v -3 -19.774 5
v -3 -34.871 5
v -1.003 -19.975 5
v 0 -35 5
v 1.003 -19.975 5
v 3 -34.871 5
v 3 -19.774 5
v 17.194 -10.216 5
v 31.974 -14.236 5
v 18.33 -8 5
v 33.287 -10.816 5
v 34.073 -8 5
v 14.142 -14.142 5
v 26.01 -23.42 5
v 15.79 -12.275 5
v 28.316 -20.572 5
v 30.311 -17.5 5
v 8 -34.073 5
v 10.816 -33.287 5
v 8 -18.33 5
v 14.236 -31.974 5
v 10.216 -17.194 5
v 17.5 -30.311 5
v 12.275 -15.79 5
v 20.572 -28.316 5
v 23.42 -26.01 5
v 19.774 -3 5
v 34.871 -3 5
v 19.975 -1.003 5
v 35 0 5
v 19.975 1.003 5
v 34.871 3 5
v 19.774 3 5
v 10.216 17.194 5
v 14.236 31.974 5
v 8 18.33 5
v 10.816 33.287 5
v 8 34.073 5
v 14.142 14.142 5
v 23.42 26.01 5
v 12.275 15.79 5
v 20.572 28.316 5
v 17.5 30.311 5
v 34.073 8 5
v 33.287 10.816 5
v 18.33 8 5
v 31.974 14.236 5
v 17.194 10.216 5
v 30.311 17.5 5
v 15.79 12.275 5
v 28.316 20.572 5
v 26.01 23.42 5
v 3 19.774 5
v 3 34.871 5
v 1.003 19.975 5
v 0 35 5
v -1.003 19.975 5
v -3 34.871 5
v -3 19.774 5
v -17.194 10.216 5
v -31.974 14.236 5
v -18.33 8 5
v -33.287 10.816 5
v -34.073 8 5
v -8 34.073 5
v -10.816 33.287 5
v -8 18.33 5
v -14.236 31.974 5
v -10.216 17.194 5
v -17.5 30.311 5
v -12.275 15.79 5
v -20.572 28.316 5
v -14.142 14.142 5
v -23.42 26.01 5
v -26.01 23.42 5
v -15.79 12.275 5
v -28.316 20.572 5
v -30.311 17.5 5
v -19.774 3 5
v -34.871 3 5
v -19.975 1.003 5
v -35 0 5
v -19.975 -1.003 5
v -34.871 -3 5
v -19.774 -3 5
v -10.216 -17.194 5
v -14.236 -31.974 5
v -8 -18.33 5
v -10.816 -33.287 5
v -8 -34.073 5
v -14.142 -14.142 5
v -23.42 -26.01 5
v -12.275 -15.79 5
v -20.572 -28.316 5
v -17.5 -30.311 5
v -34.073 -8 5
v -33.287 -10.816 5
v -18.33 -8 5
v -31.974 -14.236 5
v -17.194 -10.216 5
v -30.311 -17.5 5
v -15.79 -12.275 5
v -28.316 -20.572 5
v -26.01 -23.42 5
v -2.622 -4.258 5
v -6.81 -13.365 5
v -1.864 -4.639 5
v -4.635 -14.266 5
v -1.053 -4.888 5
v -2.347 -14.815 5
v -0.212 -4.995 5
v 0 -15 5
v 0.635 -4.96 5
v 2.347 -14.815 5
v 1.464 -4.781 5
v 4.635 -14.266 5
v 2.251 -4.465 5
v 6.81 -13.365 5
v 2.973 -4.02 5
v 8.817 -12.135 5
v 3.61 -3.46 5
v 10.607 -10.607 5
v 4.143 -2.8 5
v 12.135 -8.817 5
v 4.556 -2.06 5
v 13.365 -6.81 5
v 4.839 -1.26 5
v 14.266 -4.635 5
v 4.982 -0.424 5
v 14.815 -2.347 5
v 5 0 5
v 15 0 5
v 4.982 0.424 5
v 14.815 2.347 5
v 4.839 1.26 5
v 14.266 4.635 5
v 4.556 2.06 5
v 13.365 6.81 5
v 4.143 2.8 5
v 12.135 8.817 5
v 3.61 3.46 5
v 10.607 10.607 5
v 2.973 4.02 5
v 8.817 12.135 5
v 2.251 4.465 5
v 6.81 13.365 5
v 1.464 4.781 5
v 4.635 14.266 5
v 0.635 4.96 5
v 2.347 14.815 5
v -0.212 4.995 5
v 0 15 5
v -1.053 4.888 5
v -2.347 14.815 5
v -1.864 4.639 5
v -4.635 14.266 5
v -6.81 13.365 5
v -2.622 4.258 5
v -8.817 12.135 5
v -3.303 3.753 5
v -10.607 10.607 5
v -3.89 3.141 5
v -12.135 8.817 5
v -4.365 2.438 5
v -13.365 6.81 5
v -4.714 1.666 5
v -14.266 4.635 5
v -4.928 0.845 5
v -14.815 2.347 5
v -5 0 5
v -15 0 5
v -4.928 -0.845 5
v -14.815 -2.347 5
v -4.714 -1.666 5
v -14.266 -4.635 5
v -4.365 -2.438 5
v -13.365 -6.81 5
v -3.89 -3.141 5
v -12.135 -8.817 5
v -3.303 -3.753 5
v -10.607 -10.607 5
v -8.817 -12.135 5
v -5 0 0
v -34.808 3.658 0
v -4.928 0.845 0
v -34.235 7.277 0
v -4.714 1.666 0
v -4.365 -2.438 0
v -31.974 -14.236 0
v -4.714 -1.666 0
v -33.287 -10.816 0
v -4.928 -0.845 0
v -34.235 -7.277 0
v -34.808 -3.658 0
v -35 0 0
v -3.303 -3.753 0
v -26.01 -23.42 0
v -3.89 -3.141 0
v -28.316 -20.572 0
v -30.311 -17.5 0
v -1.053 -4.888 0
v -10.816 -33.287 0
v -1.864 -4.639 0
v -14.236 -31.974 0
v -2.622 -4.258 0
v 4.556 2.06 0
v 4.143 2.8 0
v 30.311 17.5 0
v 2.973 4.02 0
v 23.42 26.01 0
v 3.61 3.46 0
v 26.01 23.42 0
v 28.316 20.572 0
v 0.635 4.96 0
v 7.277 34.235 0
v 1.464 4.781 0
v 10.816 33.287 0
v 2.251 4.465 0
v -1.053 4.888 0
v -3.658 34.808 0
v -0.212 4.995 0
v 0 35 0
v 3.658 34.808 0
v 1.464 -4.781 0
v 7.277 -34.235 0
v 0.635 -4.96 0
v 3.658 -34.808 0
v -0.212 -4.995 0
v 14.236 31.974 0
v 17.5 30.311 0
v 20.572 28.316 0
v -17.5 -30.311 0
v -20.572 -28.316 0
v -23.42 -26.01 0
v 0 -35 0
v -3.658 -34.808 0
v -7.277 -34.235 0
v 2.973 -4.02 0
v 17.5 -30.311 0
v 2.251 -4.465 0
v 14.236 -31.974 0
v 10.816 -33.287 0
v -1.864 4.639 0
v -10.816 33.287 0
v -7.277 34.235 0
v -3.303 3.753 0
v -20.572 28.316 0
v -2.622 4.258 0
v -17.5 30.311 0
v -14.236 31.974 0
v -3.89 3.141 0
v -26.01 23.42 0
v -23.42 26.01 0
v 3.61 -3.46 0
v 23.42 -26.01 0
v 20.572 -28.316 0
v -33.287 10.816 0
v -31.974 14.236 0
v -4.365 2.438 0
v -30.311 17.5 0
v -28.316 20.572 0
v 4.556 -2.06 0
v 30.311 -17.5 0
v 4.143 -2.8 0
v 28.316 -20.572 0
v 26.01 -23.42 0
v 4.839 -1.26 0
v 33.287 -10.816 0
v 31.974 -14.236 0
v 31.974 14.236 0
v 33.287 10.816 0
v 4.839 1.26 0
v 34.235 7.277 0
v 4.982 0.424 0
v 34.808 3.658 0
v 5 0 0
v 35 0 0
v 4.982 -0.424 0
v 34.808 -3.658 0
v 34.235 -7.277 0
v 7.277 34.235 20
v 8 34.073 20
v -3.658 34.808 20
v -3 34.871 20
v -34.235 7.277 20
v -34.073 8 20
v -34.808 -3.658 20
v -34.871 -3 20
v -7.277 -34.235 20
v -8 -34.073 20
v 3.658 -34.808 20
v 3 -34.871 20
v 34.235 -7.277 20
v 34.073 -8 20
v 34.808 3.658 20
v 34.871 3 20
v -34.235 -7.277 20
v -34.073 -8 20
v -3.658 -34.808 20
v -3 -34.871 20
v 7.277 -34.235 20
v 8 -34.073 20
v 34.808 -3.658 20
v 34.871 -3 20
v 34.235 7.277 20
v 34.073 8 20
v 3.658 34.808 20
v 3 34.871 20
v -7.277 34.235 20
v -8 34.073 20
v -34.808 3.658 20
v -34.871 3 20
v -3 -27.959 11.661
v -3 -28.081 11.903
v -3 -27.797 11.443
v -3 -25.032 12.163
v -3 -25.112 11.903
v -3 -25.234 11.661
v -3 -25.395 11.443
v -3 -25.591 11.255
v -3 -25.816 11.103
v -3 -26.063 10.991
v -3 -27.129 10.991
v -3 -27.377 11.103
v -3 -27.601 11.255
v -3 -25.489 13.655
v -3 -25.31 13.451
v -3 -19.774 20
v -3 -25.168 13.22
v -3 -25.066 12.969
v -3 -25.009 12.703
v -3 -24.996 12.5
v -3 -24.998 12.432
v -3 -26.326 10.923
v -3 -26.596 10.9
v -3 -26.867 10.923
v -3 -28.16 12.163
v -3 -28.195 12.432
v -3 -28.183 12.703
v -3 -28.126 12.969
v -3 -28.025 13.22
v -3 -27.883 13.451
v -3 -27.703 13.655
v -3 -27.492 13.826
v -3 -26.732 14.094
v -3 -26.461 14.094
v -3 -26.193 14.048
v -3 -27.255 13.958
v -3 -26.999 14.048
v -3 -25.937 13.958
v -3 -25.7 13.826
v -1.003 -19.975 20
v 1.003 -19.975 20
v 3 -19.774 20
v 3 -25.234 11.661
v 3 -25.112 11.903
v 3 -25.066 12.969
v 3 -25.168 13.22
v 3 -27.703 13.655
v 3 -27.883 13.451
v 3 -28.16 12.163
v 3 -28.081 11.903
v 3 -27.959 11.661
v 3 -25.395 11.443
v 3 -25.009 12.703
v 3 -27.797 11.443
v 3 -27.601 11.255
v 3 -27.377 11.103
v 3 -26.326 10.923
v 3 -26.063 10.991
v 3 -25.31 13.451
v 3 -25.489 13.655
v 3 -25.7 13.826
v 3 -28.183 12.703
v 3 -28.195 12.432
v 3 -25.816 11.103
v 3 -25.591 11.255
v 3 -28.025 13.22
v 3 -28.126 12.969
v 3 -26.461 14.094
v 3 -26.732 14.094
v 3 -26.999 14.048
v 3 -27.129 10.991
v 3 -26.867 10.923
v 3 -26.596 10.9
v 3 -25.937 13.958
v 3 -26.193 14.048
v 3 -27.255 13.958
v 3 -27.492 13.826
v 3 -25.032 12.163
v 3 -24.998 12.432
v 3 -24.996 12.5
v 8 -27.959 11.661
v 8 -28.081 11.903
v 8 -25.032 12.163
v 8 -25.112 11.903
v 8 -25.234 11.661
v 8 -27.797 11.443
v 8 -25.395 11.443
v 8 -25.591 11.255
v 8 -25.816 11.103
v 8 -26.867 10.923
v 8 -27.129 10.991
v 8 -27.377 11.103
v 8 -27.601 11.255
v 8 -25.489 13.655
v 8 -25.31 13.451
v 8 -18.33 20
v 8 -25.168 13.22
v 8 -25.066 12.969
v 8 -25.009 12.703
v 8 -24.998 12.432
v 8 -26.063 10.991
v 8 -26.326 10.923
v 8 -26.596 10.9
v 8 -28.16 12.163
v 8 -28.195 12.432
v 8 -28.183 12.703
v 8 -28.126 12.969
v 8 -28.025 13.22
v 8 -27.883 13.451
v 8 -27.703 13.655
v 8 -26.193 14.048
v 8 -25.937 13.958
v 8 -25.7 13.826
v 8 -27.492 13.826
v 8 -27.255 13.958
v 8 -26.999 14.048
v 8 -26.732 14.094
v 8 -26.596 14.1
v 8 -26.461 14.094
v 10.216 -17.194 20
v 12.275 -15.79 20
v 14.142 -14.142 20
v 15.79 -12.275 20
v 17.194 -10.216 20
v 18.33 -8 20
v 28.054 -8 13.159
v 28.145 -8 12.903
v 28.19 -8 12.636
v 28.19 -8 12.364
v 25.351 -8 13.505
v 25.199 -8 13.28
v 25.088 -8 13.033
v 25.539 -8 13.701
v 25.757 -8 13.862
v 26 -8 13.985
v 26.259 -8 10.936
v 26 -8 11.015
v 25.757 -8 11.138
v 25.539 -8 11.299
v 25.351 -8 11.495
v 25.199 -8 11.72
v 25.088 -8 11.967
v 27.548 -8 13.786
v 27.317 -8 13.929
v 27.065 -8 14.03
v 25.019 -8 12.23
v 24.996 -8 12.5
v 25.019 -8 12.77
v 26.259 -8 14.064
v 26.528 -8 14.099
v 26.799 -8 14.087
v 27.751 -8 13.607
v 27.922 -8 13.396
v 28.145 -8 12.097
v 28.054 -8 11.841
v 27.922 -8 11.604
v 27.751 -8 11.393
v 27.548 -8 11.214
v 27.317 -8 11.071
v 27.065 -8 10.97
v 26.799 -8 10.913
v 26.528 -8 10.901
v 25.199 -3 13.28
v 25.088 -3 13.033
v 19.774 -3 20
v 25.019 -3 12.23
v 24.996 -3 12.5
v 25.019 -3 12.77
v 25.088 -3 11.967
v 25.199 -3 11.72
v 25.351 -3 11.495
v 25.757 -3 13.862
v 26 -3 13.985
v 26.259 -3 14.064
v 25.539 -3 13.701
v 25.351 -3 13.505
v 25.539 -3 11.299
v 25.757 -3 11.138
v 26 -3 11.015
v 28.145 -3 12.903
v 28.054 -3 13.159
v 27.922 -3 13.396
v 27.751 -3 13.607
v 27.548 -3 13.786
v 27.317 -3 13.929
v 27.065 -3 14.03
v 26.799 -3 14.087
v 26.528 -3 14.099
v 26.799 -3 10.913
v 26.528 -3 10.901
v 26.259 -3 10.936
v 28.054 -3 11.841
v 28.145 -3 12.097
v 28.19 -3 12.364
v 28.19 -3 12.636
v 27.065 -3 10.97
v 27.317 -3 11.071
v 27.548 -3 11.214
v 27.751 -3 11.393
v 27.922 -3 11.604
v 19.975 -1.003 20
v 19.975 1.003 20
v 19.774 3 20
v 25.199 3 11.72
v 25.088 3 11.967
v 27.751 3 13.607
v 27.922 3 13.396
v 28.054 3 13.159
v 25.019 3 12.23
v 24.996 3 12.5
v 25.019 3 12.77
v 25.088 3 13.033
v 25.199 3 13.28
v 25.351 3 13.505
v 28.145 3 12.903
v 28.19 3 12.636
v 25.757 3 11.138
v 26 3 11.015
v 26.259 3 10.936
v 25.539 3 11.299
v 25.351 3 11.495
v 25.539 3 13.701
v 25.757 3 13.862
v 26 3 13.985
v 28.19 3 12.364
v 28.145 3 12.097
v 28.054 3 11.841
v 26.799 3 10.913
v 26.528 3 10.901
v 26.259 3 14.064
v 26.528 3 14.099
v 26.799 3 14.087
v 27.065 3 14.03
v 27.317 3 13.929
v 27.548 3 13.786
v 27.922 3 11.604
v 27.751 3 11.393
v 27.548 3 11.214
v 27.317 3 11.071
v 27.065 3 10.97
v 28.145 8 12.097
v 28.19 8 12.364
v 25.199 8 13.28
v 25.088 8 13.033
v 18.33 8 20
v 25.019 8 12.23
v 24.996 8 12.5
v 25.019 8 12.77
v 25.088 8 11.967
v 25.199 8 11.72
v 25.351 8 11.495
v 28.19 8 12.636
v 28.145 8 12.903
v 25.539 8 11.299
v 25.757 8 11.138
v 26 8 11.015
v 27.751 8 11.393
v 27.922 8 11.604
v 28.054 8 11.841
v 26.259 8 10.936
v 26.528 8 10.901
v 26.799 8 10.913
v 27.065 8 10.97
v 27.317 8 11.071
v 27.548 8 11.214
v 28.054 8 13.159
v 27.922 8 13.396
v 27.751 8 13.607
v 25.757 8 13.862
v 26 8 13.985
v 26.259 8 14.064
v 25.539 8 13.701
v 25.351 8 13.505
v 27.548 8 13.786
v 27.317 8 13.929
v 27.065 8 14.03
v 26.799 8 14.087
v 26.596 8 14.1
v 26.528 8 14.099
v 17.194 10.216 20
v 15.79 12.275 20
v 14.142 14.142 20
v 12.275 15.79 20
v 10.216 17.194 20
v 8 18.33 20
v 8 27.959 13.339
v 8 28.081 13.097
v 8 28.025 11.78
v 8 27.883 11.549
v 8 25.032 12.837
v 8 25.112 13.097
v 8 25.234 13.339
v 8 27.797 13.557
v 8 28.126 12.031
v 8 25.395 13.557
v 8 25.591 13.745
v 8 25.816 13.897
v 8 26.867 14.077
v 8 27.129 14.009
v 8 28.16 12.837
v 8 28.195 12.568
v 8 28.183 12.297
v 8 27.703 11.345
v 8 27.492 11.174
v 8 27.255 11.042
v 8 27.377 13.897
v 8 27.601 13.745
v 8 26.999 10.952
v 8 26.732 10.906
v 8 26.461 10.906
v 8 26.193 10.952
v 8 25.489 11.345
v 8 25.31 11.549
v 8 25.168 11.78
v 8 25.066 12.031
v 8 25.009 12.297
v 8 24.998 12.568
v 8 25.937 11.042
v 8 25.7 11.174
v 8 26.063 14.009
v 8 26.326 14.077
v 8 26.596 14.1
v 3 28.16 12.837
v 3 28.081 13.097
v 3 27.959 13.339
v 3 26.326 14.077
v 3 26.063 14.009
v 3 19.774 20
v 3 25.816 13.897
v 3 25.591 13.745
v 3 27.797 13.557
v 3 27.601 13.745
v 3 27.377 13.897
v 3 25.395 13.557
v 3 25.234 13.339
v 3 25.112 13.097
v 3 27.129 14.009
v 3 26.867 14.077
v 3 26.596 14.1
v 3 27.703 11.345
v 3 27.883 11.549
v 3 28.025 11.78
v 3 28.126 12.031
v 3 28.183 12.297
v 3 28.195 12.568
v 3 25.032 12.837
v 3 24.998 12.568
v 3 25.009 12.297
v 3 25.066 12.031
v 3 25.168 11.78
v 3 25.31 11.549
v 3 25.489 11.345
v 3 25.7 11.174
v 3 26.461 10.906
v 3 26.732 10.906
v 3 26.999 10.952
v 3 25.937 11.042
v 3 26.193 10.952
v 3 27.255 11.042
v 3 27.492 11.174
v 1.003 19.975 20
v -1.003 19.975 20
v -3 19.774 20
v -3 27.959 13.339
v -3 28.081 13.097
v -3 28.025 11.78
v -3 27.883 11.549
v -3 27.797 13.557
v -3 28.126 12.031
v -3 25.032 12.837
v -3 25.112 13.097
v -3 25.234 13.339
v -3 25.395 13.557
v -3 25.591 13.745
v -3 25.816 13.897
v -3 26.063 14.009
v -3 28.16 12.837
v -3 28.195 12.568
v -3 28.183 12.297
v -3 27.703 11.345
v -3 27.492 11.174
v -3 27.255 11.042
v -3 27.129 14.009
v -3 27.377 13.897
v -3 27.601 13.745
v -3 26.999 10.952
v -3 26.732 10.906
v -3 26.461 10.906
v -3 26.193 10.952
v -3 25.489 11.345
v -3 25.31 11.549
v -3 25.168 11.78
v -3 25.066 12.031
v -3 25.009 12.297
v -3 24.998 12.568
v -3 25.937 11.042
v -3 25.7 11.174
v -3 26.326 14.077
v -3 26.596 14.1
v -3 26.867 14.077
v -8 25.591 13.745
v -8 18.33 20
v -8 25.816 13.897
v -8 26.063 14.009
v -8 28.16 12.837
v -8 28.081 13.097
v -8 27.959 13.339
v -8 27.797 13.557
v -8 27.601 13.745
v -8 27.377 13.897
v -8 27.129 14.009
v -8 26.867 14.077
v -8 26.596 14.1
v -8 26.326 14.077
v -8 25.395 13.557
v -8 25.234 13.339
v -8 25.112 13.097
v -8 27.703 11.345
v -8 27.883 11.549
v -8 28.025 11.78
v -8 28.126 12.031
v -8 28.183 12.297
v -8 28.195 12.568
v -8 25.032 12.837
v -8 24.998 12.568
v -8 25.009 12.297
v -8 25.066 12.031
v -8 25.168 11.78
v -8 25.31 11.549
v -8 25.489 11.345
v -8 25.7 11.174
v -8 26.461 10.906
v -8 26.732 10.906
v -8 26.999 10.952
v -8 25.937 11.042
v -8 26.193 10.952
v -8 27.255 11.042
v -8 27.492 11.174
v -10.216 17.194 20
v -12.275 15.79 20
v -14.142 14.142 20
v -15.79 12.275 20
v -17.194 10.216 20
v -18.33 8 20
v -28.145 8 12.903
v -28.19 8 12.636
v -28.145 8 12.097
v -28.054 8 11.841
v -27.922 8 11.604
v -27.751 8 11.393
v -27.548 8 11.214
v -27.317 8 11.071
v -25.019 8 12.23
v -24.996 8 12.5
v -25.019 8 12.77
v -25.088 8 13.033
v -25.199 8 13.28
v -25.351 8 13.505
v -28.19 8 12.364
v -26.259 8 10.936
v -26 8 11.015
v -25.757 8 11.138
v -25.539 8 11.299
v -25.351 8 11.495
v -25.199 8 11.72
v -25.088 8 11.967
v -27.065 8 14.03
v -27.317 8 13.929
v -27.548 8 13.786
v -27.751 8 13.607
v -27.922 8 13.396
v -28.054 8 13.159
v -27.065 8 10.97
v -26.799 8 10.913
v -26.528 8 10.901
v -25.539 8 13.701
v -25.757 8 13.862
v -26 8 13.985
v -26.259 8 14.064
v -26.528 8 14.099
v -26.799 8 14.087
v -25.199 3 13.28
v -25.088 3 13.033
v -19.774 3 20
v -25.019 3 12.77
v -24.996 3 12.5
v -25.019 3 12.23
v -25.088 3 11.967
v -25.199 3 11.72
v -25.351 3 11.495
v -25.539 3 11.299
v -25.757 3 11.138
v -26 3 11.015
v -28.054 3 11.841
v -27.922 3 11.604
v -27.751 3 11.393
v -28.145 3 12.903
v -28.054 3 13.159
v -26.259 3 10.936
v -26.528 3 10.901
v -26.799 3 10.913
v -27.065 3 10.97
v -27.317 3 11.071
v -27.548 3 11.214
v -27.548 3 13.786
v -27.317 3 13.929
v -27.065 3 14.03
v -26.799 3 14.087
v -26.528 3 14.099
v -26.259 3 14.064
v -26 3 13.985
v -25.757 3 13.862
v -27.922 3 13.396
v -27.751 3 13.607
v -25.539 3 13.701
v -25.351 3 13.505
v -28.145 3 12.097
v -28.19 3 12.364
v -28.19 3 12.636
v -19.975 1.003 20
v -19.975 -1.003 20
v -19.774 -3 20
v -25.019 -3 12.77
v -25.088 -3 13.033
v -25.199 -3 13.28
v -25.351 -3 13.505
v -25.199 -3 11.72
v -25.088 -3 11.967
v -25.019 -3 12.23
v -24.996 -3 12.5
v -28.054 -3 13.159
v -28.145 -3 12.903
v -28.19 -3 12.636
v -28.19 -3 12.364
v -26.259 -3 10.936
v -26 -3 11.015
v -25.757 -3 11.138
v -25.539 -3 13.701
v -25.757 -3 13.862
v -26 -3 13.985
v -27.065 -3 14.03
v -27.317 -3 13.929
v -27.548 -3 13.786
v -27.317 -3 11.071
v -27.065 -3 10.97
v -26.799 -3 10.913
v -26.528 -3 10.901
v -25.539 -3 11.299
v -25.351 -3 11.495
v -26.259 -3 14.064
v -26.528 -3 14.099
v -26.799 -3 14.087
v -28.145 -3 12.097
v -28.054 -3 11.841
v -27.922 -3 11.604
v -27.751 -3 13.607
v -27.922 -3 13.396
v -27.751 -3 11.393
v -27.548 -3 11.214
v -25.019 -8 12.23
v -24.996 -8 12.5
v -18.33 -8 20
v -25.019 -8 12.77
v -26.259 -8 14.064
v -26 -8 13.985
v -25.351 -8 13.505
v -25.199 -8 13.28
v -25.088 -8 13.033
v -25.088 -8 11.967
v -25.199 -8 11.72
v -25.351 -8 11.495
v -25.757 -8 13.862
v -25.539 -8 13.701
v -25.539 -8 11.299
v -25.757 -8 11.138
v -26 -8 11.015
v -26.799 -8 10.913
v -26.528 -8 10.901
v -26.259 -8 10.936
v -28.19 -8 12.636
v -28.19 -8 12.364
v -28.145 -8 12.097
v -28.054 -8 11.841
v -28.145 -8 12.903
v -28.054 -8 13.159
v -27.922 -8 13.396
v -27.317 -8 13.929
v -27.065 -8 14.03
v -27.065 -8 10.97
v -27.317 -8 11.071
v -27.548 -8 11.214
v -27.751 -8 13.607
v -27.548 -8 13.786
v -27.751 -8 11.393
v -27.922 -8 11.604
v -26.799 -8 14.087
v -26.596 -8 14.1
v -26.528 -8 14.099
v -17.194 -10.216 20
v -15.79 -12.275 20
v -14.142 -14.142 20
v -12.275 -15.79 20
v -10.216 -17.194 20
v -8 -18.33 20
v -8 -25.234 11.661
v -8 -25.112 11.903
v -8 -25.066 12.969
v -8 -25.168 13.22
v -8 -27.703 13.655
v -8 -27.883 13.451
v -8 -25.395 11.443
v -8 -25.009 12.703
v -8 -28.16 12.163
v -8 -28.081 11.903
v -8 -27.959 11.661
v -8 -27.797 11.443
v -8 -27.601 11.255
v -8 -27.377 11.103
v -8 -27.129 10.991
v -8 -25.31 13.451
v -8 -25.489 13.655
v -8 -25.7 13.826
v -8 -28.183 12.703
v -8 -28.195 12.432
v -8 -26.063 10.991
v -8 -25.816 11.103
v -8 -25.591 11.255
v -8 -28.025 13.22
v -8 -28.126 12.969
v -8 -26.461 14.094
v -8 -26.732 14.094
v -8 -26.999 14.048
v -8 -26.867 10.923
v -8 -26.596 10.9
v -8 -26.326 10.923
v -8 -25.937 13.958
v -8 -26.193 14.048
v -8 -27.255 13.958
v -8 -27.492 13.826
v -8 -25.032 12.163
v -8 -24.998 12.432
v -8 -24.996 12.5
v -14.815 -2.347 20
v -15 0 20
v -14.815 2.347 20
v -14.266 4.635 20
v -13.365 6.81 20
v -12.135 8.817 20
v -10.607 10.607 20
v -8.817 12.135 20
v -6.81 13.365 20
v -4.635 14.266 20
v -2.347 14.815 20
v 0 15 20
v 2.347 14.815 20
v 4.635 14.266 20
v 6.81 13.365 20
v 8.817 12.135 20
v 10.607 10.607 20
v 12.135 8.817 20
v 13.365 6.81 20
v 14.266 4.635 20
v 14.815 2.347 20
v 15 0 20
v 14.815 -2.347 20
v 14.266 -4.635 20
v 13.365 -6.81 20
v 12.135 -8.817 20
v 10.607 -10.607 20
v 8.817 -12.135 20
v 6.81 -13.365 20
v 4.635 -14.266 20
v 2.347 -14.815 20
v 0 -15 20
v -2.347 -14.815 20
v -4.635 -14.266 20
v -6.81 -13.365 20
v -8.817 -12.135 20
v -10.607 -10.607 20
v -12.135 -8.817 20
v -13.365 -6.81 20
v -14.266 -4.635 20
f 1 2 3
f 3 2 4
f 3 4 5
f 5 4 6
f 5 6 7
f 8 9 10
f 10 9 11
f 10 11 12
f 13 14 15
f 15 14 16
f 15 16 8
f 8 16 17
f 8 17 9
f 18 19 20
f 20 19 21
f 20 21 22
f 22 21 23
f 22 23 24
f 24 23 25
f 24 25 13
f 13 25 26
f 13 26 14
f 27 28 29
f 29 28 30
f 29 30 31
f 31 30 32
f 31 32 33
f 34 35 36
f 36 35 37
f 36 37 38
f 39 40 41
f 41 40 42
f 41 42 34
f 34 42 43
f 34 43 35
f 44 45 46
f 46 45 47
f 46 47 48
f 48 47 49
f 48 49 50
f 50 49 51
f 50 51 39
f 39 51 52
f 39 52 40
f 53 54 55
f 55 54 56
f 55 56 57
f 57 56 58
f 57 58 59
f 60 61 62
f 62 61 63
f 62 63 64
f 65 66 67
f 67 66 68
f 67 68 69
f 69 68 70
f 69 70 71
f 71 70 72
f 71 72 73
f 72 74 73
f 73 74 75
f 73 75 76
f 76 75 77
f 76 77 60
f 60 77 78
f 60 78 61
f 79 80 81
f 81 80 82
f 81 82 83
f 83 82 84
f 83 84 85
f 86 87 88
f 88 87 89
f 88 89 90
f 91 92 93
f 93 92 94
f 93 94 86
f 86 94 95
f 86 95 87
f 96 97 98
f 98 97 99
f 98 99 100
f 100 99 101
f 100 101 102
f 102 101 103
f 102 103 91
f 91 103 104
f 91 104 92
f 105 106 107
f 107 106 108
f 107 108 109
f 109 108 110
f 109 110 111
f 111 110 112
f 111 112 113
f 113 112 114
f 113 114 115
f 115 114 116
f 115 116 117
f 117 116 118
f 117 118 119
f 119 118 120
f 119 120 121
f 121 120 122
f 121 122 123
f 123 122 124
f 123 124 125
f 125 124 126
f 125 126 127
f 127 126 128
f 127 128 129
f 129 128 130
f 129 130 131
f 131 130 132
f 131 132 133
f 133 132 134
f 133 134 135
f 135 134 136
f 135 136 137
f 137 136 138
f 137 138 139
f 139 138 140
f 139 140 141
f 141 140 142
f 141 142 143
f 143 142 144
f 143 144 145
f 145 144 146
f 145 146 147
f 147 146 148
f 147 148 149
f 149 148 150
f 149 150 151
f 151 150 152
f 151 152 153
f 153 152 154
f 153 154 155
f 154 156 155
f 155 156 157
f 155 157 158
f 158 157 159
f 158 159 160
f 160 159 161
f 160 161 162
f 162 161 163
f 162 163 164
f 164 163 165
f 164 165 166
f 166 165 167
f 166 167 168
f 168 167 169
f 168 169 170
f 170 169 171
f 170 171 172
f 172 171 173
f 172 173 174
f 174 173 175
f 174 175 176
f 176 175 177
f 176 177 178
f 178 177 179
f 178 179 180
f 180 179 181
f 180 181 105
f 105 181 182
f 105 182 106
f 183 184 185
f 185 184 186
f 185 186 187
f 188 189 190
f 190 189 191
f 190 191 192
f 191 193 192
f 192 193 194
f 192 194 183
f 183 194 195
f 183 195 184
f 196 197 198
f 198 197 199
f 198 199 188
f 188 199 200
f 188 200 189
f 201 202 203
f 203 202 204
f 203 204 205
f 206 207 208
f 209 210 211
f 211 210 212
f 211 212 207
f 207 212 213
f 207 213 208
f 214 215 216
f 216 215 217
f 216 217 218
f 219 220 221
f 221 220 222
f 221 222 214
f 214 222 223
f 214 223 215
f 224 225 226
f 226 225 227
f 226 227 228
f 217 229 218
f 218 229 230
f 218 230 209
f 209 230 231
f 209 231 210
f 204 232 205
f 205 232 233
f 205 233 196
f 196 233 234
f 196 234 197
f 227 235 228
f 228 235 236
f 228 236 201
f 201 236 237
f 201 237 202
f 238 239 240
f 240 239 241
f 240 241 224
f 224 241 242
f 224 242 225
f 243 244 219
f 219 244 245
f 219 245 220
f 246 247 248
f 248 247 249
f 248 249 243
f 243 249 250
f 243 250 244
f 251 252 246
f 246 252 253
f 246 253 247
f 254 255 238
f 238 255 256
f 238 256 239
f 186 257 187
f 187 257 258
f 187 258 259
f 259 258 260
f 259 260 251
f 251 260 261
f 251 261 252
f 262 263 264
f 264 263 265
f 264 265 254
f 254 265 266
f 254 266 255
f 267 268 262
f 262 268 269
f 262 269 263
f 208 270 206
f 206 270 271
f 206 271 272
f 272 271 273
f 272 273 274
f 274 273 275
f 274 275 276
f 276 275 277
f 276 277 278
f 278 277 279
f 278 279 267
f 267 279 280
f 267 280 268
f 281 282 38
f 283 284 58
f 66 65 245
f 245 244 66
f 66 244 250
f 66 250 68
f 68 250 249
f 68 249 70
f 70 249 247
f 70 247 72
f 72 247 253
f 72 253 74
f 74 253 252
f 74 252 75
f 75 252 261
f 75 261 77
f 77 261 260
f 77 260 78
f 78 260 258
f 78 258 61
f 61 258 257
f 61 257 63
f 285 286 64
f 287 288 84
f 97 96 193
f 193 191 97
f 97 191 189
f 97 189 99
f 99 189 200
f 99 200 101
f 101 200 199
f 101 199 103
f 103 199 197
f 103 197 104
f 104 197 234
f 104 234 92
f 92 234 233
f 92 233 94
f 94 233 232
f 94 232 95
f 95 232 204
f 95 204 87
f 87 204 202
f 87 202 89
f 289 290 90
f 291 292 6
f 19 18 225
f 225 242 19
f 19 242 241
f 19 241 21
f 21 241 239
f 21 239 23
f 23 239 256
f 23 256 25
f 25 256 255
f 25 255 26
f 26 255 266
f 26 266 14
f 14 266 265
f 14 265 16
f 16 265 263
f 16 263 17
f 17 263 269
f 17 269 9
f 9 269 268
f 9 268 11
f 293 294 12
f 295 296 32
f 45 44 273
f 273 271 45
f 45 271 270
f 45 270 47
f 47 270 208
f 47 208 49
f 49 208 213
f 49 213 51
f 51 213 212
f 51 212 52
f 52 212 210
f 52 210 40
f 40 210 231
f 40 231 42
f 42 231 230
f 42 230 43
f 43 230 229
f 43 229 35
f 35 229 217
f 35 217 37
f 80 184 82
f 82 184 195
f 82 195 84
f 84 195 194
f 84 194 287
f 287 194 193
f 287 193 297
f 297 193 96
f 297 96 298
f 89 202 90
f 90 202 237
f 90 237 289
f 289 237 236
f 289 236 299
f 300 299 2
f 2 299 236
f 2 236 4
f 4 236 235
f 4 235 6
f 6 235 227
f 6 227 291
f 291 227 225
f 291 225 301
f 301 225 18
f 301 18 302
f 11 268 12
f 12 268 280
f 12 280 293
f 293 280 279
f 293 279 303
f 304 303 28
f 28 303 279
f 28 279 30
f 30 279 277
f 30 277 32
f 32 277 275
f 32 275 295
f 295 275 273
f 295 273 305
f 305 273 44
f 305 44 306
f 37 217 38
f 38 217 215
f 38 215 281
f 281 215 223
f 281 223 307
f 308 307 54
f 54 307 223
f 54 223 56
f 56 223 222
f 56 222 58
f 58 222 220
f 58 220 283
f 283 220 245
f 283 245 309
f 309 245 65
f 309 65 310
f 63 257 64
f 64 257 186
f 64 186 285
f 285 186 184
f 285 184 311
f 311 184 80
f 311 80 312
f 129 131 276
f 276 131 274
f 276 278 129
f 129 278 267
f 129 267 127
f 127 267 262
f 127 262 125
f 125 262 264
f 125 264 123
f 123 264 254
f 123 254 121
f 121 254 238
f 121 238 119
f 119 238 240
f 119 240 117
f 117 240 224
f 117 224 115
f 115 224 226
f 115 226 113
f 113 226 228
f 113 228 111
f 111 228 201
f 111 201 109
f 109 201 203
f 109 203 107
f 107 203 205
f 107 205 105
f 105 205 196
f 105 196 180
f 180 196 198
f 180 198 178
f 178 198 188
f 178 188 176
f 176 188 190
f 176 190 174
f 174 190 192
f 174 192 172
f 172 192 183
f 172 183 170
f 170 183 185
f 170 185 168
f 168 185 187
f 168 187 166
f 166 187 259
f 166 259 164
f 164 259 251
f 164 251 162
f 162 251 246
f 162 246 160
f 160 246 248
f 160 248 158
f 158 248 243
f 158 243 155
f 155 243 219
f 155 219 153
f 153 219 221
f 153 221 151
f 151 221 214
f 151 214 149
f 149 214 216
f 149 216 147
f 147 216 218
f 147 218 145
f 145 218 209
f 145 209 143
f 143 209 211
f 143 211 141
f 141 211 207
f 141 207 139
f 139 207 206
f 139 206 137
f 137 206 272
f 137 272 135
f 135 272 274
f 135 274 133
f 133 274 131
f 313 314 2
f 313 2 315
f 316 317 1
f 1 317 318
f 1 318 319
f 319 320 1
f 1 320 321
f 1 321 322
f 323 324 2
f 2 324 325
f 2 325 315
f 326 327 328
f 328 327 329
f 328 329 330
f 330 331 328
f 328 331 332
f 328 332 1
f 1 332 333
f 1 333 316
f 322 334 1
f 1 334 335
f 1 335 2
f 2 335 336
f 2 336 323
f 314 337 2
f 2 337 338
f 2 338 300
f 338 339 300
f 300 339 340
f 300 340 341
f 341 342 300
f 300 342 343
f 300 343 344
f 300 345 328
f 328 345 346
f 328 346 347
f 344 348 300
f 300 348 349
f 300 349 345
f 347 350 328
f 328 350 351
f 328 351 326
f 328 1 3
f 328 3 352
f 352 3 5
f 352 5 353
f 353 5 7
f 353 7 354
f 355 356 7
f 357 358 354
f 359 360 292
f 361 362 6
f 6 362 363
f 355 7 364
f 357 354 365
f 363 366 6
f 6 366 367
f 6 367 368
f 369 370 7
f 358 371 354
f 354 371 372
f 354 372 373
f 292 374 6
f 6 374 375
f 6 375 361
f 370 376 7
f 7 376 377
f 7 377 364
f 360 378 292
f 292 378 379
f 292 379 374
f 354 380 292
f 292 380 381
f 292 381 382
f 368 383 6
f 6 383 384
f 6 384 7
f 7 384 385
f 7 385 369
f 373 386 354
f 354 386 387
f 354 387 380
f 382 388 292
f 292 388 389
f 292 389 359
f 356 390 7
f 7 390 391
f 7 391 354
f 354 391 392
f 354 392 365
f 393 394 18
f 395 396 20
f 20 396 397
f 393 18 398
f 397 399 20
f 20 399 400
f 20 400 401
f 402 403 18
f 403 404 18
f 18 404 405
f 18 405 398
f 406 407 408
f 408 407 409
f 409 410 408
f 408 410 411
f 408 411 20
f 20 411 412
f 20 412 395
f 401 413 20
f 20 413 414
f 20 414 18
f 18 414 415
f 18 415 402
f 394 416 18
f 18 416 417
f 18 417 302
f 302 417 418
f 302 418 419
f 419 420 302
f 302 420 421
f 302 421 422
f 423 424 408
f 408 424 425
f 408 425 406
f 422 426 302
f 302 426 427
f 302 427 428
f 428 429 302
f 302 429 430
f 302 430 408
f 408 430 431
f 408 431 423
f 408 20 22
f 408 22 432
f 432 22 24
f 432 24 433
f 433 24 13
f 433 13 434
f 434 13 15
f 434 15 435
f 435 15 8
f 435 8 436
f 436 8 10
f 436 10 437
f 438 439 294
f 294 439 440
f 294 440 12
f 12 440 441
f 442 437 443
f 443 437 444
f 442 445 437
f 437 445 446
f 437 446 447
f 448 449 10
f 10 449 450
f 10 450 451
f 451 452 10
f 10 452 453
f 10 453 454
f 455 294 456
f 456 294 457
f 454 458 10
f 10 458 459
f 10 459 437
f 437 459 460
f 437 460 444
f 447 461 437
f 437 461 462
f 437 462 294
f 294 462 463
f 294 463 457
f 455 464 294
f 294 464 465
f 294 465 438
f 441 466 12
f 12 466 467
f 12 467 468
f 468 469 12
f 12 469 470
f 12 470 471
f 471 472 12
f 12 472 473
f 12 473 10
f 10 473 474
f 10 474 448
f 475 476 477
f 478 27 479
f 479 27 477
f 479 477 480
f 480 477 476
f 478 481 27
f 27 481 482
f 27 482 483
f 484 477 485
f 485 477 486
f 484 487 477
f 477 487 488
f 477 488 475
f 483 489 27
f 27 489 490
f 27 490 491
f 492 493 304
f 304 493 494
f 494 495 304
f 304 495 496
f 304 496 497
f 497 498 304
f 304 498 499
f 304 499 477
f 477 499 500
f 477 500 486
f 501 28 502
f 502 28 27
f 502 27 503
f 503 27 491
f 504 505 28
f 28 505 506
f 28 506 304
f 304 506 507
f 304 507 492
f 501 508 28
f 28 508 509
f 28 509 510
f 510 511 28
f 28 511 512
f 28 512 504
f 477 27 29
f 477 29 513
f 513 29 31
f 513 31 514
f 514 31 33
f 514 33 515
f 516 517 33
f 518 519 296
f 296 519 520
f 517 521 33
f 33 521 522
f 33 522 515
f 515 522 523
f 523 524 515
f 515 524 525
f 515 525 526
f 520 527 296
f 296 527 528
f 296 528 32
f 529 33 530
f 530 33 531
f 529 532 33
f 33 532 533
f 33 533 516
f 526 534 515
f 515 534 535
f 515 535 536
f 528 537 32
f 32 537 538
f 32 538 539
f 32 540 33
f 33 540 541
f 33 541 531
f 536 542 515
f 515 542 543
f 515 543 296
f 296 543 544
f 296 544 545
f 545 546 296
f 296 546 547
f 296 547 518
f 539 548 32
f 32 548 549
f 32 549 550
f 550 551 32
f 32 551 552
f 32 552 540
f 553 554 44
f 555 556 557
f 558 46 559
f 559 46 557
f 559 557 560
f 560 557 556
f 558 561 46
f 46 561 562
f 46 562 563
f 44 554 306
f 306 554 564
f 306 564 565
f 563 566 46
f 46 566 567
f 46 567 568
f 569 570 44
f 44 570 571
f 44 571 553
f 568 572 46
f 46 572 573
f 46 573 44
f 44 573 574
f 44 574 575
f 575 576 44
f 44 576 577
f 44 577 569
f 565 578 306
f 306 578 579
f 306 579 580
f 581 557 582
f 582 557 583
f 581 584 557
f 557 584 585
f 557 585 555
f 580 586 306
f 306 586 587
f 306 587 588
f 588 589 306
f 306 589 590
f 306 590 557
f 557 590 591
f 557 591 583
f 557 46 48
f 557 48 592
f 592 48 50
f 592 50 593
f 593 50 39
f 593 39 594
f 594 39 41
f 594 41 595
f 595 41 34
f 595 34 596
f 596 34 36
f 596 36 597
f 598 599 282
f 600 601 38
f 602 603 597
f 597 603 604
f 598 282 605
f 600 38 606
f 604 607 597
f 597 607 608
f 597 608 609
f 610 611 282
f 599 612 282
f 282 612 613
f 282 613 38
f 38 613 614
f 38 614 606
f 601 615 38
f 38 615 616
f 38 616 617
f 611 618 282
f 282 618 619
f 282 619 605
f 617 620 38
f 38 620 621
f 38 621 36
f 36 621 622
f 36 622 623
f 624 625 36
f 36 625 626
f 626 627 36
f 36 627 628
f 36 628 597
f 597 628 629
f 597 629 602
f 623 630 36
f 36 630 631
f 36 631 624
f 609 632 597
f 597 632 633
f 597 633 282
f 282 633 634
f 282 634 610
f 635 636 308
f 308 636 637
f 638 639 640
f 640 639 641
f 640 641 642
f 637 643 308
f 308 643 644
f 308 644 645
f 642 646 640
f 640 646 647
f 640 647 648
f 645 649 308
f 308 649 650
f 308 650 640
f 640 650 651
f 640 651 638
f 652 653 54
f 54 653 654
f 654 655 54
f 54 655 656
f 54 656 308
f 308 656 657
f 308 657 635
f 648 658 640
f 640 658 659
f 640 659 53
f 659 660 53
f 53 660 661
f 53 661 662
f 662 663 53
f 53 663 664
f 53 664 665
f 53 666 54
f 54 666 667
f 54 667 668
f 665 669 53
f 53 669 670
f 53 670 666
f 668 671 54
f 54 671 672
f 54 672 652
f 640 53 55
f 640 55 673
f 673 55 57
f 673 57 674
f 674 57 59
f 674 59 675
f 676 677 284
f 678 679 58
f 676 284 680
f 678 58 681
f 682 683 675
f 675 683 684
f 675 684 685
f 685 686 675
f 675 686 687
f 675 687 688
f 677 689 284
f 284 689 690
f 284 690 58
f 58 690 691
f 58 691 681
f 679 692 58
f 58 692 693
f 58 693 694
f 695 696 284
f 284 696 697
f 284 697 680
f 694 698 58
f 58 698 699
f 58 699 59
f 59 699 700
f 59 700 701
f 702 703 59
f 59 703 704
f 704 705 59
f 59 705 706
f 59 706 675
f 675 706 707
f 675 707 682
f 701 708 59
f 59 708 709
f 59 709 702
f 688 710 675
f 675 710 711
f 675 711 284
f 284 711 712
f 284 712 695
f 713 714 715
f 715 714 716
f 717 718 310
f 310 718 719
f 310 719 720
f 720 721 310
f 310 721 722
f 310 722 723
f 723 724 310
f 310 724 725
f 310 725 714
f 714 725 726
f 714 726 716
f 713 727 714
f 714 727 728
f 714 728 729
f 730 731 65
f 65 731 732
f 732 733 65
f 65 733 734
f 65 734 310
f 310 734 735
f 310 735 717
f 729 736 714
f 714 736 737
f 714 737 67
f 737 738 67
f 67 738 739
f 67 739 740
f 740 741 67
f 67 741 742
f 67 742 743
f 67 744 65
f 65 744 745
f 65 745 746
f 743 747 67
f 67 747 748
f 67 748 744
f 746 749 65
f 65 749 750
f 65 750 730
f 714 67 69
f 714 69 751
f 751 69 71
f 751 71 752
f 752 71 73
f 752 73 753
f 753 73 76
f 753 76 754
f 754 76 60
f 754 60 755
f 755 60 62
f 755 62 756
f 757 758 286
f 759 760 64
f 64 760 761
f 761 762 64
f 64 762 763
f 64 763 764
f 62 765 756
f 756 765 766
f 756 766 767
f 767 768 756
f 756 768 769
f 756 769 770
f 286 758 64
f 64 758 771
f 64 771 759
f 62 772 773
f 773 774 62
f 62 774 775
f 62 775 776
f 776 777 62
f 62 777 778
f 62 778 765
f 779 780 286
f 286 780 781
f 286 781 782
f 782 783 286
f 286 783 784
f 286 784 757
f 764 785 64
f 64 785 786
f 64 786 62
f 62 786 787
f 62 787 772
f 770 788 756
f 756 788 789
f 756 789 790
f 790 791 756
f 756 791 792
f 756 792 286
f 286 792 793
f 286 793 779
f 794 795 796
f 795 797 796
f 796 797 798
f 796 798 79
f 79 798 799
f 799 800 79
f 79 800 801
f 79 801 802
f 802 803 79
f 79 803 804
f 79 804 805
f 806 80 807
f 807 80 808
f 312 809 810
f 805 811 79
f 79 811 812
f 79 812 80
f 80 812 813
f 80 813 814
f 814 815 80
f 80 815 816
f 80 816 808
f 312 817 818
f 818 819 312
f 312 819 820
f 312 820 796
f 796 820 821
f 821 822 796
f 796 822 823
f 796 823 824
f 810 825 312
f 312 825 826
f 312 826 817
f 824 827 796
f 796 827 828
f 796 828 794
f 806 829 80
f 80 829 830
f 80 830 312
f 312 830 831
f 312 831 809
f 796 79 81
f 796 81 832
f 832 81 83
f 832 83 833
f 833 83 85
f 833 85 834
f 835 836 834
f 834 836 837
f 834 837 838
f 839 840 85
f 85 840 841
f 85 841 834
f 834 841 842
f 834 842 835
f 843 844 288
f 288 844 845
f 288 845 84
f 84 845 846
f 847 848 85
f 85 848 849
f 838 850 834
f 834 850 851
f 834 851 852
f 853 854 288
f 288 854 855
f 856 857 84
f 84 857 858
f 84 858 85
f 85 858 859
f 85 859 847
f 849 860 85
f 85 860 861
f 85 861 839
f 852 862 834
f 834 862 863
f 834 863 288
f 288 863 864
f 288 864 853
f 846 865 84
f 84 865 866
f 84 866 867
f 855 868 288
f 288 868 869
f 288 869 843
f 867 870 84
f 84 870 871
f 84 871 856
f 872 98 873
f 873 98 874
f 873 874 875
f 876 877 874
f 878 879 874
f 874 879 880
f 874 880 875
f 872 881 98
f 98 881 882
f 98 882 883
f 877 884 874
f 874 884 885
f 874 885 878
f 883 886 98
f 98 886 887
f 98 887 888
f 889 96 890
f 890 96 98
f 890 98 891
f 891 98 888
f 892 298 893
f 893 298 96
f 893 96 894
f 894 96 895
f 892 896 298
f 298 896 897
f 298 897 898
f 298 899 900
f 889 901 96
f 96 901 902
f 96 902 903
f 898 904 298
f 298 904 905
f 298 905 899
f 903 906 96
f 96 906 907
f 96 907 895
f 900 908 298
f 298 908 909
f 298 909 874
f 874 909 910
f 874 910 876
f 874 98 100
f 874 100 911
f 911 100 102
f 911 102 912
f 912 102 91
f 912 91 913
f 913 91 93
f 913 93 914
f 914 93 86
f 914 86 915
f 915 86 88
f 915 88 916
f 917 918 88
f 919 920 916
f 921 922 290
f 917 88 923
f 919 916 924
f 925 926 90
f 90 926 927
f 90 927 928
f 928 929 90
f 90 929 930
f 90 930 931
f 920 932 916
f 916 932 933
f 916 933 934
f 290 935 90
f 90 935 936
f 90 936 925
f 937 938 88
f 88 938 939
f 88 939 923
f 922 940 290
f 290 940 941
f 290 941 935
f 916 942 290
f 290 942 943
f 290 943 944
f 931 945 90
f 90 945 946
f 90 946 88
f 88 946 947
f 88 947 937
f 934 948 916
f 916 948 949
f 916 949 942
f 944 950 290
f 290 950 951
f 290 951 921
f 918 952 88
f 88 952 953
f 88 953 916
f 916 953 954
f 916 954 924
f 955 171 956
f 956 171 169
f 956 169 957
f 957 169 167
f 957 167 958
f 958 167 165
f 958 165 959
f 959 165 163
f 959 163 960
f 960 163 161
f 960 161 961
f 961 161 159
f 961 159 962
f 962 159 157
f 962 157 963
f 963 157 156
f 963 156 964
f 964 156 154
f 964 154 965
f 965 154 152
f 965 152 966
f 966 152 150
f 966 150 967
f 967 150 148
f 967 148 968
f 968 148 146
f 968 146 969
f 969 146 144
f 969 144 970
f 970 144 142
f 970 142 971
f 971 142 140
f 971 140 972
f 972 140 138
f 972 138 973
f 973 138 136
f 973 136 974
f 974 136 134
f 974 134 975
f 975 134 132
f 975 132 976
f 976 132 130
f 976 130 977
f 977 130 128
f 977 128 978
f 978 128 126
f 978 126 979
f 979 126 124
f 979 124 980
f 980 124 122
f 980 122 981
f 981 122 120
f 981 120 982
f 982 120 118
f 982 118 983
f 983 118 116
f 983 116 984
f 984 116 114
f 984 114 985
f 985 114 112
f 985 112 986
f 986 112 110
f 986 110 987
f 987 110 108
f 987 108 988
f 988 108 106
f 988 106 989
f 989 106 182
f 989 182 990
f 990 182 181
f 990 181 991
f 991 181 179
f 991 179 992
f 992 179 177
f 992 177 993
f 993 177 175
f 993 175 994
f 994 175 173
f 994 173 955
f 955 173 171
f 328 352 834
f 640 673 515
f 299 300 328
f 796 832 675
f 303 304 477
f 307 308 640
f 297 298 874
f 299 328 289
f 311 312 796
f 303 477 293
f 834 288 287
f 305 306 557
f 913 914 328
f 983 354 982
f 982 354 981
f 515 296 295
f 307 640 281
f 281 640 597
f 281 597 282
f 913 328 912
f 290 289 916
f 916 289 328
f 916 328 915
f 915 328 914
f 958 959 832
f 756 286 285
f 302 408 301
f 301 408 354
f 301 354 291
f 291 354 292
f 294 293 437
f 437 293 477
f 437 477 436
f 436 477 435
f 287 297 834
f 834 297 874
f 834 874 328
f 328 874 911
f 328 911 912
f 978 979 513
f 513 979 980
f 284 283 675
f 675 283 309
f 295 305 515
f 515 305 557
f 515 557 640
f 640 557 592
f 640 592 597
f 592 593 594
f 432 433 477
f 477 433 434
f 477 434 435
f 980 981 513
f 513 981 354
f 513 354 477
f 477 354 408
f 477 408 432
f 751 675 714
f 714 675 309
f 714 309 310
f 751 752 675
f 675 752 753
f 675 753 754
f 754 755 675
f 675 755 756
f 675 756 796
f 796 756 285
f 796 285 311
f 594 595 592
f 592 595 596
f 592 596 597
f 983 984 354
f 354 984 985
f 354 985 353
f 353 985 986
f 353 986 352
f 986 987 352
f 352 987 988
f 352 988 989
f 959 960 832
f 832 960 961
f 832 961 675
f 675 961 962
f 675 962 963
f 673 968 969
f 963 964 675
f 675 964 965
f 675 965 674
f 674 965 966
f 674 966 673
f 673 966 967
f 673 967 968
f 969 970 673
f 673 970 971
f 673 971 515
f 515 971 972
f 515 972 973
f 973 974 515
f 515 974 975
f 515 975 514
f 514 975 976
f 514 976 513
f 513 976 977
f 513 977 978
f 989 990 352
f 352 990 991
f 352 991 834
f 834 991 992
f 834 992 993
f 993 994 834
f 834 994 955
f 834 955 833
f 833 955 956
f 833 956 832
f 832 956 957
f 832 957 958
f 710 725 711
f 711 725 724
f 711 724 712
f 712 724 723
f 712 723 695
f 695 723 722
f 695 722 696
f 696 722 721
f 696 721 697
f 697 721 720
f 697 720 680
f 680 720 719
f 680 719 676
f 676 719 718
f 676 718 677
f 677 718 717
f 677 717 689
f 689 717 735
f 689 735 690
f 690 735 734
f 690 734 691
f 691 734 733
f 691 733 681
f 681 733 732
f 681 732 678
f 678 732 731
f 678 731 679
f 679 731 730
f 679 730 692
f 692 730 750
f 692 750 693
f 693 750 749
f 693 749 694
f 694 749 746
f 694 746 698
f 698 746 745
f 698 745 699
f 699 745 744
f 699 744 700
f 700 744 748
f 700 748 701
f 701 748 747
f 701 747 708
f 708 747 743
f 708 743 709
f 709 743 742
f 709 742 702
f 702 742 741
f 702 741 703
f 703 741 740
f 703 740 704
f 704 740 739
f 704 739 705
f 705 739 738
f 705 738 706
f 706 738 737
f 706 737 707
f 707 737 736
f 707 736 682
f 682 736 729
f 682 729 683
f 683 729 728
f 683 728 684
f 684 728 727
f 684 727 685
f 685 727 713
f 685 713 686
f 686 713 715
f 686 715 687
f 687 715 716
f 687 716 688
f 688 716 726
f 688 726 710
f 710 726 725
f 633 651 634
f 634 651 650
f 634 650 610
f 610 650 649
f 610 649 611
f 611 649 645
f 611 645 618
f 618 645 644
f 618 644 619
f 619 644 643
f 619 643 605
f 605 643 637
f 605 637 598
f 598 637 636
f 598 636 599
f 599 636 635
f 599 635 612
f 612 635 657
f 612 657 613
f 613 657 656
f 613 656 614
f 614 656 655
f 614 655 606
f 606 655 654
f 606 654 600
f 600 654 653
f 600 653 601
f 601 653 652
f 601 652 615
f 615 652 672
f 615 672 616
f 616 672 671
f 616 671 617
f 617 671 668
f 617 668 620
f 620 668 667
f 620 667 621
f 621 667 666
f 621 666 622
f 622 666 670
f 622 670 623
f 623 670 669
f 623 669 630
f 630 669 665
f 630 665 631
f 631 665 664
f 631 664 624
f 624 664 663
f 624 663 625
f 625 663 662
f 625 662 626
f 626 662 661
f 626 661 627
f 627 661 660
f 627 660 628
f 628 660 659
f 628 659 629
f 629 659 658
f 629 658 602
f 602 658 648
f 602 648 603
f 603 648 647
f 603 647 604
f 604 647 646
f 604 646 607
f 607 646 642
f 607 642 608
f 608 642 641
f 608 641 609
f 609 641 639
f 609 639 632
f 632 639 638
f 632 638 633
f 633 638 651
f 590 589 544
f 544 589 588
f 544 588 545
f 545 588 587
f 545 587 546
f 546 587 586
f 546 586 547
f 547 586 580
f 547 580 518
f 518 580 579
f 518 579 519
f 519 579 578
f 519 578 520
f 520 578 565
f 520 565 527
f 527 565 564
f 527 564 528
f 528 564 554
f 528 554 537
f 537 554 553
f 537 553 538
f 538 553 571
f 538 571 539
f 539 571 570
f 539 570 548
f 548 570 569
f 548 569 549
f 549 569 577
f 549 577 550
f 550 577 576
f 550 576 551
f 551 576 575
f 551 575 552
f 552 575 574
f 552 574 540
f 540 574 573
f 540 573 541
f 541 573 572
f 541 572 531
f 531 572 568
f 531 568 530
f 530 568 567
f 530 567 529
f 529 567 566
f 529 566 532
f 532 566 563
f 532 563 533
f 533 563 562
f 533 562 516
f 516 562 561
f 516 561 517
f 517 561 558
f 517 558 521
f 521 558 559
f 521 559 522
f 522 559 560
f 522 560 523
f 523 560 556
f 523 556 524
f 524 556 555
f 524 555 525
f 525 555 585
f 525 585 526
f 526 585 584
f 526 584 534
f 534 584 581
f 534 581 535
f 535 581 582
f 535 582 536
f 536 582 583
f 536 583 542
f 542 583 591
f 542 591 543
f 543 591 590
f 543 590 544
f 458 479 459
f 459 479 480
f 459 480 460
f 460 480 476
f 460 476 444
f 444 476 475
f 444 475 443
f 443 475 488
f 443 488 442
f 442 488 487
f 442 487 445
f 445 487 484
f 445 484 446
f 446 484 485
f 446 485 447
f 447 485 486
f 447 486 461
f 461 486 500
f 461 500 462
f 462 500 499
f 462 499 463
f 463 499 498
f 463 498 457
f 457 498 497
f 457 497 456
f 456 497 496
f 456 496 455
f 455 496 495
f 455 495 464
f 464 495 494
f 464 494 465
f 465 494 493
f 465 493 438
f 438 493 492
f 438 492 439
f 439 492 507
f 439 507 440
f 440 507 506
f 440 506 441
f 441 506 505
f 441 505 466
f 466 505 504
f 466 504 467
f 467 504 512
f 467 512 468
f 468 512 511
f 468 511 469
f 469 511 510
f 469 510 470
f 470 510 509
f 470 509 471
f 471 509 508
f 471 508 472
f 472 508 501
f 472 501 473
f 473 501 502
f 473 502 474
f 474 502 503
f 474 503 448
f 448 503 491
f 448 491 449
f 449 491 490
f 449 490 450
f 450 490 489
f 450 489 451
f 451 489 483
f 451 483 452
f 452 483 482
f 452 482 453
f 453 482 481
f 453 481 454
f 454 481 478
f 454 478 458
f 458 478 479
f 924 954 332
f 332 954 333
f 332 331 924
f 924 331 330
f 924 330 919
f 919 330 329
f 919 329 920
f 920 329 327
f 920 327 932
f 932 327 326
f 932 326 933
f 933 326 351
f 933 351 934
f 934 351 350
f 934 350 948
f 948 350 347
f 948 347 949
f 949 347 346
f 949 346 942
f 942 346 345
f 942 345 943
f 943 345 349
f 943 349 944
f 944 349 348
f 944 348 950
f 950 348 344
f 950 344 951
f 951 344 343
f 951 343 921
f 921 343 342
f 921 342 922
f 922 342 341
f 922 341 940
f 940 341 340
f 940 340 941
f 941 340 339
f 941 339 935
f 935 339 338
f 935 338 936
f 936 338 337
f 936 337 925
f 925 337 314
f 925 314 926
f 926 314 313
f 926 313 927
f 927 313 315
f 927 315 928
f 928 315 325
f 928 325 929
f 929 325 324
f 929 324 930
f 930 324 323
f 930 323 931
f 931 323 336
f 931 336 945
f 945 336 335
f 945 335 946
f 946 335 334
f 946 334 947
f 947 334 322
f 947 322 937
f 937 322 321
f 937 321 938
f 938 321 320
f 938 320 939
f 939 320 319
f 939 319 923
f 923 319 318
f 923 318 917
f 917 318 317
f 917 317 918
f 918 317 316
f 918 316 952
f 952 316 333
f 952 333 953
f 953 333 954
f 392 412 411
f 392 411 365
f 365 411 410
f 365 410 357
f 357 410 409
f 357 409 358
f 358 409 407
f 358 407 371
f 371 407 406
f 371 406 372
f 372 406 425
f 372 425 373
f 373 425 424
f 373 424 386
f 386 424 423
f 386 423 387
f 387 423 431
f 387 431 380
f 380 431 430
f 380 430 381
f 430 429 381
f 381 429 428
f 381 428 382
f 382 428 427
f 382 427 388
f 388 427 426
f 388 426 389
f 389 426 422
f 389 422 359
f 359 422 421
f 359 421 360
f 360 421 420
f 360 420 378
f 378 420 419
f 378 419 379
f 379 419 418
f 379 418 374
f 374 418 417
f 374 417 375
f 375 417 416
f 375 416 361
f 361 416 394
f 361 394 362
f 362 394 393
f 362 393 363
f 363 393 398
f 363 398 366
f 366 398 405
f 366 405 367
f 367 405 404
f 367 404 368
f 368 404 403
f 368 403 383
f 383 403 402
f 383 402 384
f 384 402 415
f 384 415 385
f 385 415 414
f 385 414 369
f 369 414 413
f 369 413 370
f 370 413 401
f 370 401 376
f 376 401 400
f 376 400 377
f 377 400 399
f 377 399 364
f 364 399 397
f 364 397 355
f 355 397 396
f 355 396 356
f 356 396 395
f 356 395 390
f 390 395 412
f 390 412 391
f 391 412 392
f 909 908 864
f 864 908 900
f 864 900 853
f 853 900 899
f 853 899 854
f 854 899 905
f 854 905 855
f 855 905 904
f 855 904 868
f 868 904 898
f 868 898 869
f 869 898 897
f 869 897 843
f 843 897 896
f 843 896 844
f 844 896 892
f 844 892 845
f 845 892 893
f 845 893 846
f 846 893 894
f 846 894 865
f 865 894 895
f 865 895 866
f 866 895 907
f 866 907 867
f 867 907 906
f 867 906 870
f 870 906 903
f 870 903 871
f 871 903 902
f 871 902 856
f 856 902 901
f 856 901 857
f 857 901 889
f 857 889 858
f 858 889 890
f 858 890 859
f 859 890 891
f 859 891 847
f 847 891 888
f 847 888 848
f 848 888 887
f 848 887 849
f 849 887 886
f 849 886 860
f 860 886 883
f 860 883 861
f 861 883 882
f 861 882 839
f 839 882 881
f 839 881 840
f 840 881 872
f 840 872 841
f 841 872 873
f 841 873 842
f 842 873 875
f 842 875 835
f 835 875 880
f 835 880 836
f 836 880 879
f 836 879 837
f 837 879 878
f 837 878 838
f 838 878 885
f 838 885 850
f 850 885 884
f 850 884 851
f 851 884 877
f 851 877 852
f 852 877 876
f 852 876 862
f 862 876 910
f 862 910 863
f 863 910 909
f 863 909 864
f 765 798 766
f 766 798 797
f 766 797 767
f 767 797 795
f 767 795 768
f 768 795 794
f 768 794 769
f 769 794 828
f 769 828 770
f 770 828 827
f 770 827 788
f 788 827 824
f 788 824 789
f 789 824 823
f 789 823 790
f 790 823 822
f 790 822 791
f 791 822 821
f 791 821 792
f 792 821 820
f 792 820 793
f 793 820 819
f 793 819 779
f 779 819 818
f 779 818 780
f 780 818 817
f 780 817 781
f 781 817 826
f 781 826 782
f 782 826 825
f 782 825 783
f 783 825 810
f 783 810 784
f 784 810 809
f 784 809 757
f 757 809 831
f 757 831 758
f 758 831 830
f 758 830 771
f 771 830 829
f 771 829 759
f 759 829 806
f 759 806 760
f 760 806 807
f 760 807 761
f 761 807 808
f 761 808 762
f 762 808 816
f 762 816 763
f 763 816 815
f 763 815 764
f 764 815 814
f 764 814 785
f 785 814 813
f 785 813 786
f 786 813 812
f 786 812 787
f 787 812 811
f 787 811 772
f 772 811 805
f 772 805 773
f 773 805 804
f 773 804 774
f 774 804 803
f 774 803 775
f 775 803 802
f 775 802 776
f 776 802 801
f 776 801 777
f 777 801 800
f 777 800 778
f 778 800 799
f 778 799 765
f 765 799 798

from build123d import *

# Parameters (mm, degrees)
SKETCH2_R           = 35
SKETCH2_R_2         = 5
BOSS_EXTRUDE1_DEPTH = 5
SKETCH3_R           = 20
SKETCH3_R_2         = 15
BOSS_EXTRUDE3_DEPTH = 15
SKETCH4_R           = 1.6
CUT_EXTRUDE1_DEPTH  = 59.940648113
CIRPATTERN1_COUNT   = 4


with BuildPart() as part:
    # Sketch2 → Boss-Extrude1 (new body)
    with BuildSketch(Plane.XY):
        Circle(SKETCH2_R)
        Circle(SKETCH2_R_2, mode=Mode.SUBTRACT)
    extrude(amount=BOSS_EXTRUDE1_DEPTH)

    # Sketch3 → Boss-Extrude3 (add)
    # profile 1 of 9: a face of its own
    with BuildSketch(Plane.XY.offset(5)):
        with BuildLine():
            ThreePointArc((-3, -19.773719933), (-5.547149112, -19.215335978), (-8, -18.33030278))
            Line((-8, -18.33030278), (-8, -34.073450075))
            ThreePointArc((-8, -34.073450075), (-5.514444475, -34.562854369), (-3, -34.871191548))
            Line((-3, -34.871191548), (-3, -19.773719933))
        make_face()
    # profile 2 of 9: a face of its own
    with BuildSketch(Plane.XY.offset(5)):
        with BuildLine():
            Line((8, -34.073450075), (8, -18.33030278))
            ThreePointArc((8, -18.33030278), (5.547149112, -19.215335978), (3, -19.773719933))
            Line((3, -19.773719933), (3, -34.871191548))
            ThreePointArc((3, -34.871191548), (5.514444475, -34.562854369), (8, -34.073450075))
        make_face()
    # profile 3 of 9: a face of its own
    with BuildSketch(Plane.XY.offset(5)):
        with BuildLine():
            Line((34.871191548, -3), (19.773719933, -3))
            ThreePointArc((19.773719933, -3), (19.215335978, -5.547149112), (18.33030278, -8))
            Line((18.33030278, -8), (34.073450075, -8))
            ThreePointArc((34.073450075, -8), (34.562854369, -5.514444475), (34.871191548, -3))
        make_face()
    # profile 4 of 9: a face of its own
    with BuildSketch(Plane.XY.offset(5)):
        with BuildLine():
            Line((34.073450075, 8), (18.33030278, 8))
            ThreePointArc((18.33030278, 8), (19.215335978, 5.547149112), (19.773719933, 3))
            Line((19.773719933, 3), (34.871191548, 3))
            ThreePointArc((34.871191548, 3), (34.562854369, 5.514444475), (34.073450075, 8))
        make_face()
    # profile 5 of 9: a face of its own
    with BuildSketch(Plane.XY.offset(5)):
        with BuildLine():
            Line((3, 34.871191548), (3, 19.773719933))
            ThreePointArc((3, 19.773719933), (5.547149112, 19.215335978), (8, 18.33030278))
            Line((8, 18.33030278), (8, 34.073450075))
            ThreePointArc((8, 34.073450075), (5.514444475, 34.562854369), (3, 34.871191548))
        make_face()
    # profile 6 of 9: a face of its own
    with BuildSketch(Plane.XY.offset(5)):
        with BuildLine():
            ThreePointArc((-8, 18.33030278), (-5.547149112, 19.215335978), (-3, 19.773719933))
            Line((-3, 19.773719933), (-3, 34.871191548))
            ThreePointArc((-3, 34.871191548), (-5.514444475, 34.562854369), (-8, 34.073450075))
            Line((-8, 34.073450075), (-8, 18.33030278))
        make_face()
    # profile 7 of 9: a face of its own
    with BuildSketch(Plane.XY.offset(5)):
        with BuildLine():
            ThreePointArc((-19.773719933, 3), (-19.215335978, 5.547149112), (-18.33030278, 8))
            Line((-18.33030278, 8), (-34.073450075, 8))
            ThreePointArc((-34.073450075, 8), (-34.562854369, 5.514444475), (-34.871191548, 3))
            Line((-34.871191548, 3), (-19.773719933, 3))
        make_face()
    # profile 8 of 9: a face of its own
    with BuildSketch(Plane.XY.offset(5)):
        with BuildLine():
            ThreePointArc((-18.33030278, -8), (-19.215335978, -5.547149112), (-19.773719933, -3))
            Line((-19.773719933, -3), (-34.871191548, -3))
            ThreePointArc((-34.871191548, -3), (-34.562854369, -5.514444475), (-34.073450075, -8))
            Line((-34.073450075, -8), (-18.33030278, -8))
        make_face()
    # profile 9 of 9: a face of its own
    with BuildSketch(Plane.XY.offset(5)):
        Circle(SKETCH3_R)
        Circle(SKETCH3_R_2, mode=Mode.SUBTRACT)
    extrude(amount=BOSS_EXTRUDE3_DEPTH)

    # Sketch4 → Cut-Extrude1 (cut, through all)
    with BuildSketch(Plane.ZY.offset(8)):
        with Locations((12.5, 26.596250524)):
            Circle(SKETCH4_R)
    cut_extrude1 = extrude(amount=-CUT_EXTRUDE1_DEPTH, mode=Mode.SUBTRACT)

    # CirPattern1: Cut-Extrude1 ×4 about axis
    cirpattern1_axis = Axis((0, 0, 20), (0, 0, -1))
    for i in range(1, CIRPATTERN1_COUNT):
        add(cut_extrude1.rotate(cirpattern1_axis, i * 360 / CIRPATTERN1_COUNT), mode=Mode.SUBTRACT)


solid = part.part
